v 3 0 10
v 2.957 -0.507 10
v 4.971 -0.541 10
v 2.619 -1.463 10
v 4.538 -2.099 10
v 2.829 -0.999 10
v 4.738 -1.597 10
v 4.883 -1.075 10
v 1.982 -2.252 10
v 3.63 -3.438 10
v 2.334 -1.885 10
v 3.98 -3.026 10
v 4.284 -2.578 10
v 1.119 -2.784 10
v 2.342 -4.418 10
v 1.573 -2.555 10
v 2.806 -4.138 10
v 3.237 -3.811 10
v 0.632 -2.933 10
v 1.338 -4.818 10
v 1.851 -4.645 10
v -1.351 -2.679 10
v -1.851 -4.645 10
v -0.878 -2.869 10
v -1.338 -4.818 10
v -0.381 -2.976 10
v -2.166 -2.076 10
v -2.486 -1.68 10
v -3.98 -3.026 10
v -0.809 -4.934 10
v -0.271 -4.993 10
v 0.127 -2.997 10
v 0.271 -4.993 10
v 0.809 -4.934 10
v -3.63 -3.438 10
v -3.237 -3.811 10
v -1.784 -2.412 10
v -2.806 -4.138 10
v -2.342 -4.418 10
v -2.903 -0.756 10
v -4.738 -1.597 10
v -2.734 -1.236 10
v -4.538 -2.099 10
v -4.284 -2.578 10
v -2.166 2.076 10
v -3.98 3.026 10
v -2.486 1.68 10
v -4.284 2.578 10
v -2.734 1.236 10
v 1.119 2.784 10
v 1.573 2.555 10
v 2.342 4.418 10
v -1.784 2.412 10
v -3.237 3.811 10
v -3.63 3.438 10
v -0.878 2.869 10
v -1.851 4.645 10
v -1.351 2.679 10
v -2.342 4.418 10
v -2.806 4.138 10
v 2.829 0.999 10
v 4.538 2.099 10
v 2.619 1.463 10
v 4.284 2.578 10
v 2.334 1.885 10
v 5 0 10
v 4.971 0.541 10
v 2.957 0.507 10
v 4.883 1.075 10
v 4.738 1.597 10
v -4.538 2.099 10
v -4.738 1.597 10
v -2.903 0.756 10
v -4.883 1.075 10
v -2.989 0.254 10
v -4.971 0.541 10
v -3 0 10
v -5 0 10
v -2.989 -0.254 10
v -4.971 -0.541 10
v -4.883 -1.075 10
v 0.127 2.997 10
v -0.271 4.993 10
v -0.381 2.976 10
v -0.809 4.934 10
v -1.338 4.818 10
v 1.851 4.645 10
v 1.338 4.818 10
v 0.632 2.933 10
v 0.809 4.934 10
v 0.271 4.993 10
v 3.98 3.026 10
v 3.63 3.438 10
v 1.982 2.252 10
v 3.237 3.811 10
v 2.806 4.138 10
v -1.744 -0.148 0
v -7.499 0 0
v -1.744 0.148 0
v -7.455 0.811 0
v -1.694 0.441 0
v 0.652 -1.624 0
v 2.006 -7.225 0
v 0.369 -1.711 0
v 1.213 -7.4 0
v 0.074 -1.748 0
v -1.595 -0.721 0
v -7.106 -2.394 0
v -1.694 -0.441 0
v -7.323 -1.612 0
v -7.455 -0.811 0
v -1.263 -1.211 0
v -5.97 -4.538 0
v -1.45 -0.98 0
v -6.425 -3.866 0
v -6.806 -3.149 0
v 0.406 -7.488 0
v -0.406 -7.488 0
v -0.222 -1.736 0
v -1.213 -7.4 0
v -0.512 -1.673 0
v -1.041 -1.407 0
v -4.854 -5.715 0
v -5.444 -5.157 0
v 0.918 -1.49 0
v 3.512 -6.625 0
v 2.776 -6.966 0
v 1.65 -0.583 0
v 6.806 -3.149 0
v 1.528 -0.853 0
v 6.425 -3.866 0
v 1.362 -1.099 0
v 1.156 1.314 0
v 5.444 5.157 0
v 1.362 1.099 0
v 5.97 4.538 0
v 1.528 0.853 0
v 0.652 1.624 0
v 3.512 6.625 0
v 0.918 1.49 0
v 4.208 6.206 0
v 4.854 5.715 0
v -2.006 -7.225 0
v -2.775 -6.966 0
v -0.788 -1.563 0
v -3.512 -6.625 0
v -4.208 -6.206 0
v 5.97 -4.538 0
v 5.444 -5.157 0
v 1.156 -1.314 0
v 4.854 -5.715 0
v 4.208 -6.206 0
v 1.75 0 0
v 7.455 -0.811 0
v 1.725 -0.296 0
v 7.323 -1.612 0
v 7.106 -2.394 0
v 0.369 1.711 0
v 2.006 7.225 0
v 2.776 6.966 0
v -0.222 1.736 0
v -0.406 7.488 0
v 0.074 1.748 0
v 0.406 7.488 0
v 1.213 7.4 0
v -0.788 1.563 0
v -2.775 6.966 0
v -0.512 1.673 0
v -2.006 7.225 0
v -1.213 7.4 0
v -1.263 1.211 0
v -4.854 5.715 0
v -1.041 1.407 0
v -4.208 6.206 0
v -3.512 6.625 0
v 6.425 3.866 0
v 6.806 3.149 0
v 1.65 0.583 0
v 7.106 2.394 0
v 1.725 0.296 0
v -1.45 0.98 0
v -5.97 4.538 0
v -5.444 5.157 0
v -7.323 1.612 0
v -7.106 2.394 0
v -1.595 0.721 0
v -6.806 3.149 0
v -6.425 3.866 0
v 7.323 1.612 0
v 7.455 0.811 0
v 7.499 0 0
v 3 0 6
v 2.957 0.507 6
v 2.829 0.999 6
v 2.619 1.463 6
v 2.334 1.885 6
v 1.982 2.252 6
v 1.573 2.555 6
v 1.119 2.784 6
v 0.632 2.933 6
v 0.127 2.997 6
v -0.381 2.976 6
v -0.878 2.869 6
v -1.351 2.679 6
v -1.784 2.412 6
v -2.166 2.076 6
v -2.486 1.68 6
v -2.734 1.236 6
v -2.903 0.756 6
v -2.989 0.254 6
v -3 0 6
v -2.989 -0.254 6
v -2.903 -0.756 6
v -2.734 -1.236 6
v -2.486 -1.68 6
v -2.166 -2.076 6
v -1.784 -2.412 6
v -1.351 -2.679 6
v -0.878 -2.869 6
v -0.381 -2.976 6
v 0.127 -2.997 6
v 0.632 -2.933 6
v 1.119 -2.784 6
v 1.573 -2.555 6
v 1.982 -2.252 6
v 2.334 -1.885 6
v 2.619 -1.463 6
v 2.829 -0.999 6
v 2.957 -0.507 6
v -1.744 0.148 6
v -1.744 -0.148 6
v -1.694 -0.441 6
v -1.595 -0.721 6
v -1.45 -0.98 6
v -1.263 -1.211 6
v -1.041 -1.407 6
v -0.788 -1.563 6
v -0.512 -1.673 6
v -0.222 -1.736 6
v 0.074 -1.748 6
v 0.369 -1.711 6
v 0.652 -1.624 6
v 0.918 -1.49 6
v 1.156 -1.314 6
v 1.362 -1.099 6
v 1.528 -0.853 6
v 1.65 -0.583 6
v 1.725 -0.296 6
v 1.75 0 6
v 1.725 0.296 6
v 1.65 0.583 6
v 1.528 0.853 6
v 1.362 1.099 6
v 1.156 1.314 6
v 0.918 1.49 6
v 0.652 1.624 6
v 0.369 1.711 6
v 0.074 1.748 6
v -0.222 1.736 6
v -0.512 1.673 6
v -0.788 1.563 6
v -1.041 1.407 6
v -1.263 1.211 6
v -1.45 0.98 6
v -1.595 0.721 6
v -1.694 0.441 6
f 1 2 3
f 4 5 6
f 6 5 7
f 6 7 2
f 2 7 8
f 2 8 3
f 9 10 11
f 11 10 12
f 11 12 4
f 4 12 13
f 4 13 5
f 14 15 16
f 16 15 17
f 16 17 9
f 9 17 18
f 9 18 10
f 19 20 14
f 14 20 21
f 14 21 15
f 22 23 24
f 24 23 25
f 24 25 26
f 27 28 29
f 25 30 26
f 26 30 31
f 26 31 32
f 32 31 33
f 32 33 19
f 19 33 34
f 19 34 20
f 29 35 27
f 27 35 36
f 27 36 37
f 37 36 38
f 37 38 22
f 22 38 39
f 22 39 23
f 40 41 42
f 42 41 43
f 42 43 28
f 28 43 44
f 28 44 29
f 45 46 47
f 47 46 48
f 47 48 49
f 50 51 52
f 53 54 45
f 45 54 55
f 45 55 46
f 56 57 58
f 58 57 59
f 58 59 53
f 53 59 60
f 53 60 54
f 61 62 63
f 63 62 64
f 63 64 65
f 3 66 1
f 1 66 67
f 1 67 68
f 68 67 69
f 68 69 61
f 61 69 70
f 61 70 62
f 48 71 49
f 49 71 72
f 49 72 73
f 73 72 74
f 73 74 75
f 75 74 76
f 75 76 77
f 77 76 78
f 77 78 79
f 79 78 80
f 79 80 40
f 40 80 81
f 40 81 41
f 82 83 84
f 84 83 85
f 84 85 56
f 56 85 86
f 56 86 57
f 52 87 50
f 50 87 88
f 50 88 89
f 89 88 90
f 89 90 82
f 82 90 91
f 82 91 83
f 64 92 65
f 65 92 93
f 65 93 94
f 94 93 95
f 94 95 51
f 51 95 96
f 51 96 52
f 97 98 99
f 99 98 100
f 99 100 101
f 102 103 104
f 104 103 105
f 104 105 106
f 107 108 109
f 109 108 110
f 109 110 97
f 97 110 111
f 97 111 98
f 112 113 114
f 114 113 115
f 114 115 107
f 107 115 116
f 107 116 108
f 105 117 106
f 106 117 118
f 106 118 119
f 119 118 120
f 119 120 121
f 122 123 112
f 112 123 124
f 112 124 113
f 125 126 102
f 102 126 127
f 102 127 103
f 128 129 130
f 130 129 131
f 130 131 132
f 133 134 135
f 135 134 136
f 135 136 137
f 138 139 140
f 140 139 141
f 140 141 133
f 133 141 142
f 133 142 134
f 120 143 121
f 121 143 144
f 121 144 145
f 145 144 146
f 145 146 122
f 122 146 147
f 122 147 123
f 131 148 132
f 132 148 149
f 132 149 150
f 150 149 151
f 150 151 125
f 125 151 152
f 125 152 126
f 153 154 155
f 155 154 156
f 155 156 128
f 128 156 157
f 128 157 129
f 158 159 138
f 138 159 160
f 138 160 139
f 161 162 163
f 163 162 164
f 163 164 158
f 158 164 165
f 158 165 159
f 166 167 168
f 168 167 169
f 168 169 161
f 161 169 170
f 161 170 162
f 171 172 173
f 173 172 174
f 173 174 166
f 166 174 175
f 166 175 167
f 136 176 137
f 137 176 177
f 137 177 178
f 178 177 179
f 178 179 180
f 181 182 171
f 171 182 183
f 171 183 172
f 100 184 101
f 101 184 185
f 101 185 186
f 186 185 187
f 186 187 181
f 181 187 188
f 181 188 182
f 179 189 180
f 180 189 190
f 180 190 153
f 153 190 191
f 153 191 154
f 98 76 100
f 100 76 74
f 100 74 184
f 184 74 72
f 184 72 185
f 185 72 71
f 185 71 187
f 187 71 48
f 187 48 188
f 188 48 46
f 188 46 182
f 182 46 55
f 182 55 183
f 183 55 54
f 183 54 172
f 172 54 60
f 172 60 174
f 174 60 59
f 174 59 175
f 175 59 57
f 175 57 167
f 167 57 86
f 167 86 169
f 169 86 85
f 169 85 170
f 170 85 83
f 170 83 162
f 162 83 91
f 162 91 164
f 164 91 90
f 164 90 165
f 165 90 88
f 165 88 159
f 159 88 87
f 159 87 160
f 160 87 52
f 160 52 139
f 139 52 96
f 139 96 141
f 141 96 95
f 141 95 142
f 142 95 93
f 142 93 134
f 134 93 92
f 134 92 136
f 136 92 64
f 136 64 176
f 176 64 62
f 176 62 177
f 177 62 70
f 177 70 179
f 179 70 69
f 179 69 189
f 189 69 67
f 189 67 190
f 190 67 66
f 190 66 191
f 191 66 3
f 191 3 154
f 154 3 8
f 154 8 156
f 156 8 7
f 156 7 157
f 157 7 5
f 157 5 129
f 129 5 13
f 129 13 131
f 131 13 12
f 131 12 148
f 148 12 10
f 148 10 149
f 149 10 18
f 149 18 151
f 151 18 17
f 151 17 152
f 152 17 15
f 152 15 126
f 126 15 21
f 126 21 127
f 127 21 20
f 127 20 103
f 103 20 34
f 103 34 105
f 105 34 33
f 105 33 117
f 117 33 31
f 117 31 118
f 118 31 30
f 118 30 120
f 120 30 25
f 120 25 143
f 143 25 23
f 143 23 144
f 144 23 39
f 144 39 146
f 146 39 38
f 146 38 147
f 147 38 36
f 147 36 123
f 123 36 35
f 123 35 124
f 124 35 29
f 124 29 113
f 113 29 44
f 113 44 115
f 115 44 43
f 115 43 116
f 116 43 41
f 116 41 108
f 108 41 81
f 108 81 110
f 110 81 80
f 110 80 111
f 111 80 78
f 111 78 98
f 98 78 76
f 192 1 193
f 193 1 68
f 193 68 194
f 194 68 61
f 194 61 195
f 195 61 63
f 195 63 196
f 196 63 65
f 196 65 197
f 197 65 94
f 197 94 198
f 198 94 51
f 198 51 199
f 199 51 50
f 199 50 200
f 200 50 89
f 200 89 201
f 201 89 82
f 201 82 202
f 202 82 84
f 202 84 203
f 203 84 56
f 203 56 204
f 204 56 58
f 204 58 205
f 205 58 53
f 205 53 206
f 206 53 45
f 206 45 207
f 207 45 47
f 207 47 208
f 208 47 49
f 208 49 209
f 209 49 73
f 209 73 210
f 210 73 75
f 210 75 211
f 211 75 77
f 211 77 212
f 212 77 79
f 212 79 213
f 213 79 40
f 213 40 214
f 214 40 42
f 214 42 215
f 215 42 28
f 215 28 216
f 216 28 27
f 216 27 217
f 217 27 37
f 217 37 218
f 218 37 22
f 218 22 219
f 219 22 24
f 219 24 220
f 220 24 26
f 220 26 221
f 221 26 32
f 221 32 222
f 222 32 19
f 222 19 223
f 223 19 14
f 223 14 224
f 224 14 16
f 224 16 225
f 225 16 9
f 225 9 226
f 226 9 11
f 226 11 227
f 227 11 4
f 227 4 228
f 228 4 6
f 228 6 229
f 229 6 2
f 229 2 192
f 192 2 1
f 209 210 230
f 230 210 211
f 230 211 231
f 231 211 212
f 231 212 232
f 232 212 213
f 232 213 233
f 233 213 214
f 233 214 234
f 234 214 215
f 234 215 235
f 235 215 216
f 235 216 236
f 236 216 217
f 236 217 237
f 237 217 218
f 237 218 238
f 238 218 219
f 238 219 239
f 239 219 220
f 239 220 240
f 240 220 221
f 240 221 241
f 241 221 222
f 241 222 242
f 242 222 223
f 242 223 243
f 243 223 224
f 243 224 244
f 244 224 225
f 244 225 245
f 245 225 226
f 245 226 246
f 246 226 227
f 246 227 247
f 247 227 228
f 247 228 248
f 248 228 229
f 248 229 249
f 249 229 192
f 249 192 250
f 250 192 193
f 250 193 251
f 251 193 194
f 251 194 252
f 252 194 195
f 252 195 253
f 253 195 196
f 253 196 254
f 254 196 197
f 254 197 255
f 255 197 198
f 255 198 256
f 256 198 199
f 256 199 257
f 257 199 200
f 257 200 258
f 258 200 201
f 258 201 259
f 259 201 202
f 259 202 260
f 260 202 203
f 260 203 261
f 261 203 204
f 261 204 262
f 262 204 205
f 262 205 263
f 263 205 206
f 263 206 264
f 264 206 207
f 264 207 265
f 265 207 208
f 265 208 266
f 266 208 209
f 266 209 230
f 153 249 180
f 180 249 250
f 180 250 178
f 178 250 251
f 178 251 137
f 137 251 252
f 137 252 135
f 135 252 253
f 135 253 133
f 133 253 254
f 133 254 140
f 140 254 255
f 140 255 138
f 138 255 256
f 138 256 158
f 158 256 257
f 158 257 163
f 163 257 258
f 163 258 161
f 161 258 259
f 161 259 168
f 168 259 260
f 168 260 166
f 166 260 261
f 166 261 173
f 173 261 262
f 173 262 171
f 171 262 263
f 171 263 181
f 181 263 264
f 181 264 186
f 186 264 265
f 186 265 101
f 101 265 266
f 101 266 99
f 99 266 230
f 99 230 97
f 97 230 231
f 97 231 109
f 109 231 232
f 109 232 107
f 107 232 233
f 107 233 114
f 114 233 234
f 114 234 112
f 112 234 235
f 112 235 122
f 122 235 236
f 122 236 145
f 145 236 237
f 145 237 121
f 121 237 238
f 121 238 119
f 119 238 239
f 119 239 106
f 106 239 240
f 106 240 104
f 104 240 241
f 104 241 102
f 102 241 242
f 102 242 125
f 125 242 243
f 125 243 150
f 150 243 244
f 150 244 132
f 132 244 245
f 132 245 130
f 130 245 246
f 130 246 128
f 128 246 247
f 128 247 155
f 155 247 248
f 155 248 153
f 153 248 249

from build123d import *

# Parameters (mm, degrees)
SKETCH1_R          = 7.498550769
SKETCH2_R          = 5
SKETCH3_R          = 3
CUT_EXTRUDE1_DEPTH = 4
SKETCH4_R          = 1.75
CUT_EXTRUDE2_DEPTH = 10


with BuildPart() as part:
    # Sketch1 → Loft1 section 0
    with BuildSketch(Plane.XY):
        Circle(SKETCH1_R)
    # Sketch2 → Loft1 section 1
    with BuildSketch(Plane.XY.offset(10)):
        Circle(SKETCH2_R)
    loft()

    # Sketch3 → Cut-Extrude1 (cut)
    with BuildSketch(Plane(origin=(0, 0, 10), x_dir=(-1, 0, 0), z_dir=(0, 0, -1))):
        Circle(SKETCH3_R)
    extrude(amount=CUT_EXTRUDE1_DEPTH, mode=Mode.SUBTRACT)

    # Sketch4 → Cut-Extrude2 (cut)
    with BuildSketch(Plane.XY.offset(6)):
        Circle(SKETCH4_R)
    extrude(amount=-CUT_EXTRUDE2_DEPTH, mode=Mode.SUBTRACT)


solid = part.part
